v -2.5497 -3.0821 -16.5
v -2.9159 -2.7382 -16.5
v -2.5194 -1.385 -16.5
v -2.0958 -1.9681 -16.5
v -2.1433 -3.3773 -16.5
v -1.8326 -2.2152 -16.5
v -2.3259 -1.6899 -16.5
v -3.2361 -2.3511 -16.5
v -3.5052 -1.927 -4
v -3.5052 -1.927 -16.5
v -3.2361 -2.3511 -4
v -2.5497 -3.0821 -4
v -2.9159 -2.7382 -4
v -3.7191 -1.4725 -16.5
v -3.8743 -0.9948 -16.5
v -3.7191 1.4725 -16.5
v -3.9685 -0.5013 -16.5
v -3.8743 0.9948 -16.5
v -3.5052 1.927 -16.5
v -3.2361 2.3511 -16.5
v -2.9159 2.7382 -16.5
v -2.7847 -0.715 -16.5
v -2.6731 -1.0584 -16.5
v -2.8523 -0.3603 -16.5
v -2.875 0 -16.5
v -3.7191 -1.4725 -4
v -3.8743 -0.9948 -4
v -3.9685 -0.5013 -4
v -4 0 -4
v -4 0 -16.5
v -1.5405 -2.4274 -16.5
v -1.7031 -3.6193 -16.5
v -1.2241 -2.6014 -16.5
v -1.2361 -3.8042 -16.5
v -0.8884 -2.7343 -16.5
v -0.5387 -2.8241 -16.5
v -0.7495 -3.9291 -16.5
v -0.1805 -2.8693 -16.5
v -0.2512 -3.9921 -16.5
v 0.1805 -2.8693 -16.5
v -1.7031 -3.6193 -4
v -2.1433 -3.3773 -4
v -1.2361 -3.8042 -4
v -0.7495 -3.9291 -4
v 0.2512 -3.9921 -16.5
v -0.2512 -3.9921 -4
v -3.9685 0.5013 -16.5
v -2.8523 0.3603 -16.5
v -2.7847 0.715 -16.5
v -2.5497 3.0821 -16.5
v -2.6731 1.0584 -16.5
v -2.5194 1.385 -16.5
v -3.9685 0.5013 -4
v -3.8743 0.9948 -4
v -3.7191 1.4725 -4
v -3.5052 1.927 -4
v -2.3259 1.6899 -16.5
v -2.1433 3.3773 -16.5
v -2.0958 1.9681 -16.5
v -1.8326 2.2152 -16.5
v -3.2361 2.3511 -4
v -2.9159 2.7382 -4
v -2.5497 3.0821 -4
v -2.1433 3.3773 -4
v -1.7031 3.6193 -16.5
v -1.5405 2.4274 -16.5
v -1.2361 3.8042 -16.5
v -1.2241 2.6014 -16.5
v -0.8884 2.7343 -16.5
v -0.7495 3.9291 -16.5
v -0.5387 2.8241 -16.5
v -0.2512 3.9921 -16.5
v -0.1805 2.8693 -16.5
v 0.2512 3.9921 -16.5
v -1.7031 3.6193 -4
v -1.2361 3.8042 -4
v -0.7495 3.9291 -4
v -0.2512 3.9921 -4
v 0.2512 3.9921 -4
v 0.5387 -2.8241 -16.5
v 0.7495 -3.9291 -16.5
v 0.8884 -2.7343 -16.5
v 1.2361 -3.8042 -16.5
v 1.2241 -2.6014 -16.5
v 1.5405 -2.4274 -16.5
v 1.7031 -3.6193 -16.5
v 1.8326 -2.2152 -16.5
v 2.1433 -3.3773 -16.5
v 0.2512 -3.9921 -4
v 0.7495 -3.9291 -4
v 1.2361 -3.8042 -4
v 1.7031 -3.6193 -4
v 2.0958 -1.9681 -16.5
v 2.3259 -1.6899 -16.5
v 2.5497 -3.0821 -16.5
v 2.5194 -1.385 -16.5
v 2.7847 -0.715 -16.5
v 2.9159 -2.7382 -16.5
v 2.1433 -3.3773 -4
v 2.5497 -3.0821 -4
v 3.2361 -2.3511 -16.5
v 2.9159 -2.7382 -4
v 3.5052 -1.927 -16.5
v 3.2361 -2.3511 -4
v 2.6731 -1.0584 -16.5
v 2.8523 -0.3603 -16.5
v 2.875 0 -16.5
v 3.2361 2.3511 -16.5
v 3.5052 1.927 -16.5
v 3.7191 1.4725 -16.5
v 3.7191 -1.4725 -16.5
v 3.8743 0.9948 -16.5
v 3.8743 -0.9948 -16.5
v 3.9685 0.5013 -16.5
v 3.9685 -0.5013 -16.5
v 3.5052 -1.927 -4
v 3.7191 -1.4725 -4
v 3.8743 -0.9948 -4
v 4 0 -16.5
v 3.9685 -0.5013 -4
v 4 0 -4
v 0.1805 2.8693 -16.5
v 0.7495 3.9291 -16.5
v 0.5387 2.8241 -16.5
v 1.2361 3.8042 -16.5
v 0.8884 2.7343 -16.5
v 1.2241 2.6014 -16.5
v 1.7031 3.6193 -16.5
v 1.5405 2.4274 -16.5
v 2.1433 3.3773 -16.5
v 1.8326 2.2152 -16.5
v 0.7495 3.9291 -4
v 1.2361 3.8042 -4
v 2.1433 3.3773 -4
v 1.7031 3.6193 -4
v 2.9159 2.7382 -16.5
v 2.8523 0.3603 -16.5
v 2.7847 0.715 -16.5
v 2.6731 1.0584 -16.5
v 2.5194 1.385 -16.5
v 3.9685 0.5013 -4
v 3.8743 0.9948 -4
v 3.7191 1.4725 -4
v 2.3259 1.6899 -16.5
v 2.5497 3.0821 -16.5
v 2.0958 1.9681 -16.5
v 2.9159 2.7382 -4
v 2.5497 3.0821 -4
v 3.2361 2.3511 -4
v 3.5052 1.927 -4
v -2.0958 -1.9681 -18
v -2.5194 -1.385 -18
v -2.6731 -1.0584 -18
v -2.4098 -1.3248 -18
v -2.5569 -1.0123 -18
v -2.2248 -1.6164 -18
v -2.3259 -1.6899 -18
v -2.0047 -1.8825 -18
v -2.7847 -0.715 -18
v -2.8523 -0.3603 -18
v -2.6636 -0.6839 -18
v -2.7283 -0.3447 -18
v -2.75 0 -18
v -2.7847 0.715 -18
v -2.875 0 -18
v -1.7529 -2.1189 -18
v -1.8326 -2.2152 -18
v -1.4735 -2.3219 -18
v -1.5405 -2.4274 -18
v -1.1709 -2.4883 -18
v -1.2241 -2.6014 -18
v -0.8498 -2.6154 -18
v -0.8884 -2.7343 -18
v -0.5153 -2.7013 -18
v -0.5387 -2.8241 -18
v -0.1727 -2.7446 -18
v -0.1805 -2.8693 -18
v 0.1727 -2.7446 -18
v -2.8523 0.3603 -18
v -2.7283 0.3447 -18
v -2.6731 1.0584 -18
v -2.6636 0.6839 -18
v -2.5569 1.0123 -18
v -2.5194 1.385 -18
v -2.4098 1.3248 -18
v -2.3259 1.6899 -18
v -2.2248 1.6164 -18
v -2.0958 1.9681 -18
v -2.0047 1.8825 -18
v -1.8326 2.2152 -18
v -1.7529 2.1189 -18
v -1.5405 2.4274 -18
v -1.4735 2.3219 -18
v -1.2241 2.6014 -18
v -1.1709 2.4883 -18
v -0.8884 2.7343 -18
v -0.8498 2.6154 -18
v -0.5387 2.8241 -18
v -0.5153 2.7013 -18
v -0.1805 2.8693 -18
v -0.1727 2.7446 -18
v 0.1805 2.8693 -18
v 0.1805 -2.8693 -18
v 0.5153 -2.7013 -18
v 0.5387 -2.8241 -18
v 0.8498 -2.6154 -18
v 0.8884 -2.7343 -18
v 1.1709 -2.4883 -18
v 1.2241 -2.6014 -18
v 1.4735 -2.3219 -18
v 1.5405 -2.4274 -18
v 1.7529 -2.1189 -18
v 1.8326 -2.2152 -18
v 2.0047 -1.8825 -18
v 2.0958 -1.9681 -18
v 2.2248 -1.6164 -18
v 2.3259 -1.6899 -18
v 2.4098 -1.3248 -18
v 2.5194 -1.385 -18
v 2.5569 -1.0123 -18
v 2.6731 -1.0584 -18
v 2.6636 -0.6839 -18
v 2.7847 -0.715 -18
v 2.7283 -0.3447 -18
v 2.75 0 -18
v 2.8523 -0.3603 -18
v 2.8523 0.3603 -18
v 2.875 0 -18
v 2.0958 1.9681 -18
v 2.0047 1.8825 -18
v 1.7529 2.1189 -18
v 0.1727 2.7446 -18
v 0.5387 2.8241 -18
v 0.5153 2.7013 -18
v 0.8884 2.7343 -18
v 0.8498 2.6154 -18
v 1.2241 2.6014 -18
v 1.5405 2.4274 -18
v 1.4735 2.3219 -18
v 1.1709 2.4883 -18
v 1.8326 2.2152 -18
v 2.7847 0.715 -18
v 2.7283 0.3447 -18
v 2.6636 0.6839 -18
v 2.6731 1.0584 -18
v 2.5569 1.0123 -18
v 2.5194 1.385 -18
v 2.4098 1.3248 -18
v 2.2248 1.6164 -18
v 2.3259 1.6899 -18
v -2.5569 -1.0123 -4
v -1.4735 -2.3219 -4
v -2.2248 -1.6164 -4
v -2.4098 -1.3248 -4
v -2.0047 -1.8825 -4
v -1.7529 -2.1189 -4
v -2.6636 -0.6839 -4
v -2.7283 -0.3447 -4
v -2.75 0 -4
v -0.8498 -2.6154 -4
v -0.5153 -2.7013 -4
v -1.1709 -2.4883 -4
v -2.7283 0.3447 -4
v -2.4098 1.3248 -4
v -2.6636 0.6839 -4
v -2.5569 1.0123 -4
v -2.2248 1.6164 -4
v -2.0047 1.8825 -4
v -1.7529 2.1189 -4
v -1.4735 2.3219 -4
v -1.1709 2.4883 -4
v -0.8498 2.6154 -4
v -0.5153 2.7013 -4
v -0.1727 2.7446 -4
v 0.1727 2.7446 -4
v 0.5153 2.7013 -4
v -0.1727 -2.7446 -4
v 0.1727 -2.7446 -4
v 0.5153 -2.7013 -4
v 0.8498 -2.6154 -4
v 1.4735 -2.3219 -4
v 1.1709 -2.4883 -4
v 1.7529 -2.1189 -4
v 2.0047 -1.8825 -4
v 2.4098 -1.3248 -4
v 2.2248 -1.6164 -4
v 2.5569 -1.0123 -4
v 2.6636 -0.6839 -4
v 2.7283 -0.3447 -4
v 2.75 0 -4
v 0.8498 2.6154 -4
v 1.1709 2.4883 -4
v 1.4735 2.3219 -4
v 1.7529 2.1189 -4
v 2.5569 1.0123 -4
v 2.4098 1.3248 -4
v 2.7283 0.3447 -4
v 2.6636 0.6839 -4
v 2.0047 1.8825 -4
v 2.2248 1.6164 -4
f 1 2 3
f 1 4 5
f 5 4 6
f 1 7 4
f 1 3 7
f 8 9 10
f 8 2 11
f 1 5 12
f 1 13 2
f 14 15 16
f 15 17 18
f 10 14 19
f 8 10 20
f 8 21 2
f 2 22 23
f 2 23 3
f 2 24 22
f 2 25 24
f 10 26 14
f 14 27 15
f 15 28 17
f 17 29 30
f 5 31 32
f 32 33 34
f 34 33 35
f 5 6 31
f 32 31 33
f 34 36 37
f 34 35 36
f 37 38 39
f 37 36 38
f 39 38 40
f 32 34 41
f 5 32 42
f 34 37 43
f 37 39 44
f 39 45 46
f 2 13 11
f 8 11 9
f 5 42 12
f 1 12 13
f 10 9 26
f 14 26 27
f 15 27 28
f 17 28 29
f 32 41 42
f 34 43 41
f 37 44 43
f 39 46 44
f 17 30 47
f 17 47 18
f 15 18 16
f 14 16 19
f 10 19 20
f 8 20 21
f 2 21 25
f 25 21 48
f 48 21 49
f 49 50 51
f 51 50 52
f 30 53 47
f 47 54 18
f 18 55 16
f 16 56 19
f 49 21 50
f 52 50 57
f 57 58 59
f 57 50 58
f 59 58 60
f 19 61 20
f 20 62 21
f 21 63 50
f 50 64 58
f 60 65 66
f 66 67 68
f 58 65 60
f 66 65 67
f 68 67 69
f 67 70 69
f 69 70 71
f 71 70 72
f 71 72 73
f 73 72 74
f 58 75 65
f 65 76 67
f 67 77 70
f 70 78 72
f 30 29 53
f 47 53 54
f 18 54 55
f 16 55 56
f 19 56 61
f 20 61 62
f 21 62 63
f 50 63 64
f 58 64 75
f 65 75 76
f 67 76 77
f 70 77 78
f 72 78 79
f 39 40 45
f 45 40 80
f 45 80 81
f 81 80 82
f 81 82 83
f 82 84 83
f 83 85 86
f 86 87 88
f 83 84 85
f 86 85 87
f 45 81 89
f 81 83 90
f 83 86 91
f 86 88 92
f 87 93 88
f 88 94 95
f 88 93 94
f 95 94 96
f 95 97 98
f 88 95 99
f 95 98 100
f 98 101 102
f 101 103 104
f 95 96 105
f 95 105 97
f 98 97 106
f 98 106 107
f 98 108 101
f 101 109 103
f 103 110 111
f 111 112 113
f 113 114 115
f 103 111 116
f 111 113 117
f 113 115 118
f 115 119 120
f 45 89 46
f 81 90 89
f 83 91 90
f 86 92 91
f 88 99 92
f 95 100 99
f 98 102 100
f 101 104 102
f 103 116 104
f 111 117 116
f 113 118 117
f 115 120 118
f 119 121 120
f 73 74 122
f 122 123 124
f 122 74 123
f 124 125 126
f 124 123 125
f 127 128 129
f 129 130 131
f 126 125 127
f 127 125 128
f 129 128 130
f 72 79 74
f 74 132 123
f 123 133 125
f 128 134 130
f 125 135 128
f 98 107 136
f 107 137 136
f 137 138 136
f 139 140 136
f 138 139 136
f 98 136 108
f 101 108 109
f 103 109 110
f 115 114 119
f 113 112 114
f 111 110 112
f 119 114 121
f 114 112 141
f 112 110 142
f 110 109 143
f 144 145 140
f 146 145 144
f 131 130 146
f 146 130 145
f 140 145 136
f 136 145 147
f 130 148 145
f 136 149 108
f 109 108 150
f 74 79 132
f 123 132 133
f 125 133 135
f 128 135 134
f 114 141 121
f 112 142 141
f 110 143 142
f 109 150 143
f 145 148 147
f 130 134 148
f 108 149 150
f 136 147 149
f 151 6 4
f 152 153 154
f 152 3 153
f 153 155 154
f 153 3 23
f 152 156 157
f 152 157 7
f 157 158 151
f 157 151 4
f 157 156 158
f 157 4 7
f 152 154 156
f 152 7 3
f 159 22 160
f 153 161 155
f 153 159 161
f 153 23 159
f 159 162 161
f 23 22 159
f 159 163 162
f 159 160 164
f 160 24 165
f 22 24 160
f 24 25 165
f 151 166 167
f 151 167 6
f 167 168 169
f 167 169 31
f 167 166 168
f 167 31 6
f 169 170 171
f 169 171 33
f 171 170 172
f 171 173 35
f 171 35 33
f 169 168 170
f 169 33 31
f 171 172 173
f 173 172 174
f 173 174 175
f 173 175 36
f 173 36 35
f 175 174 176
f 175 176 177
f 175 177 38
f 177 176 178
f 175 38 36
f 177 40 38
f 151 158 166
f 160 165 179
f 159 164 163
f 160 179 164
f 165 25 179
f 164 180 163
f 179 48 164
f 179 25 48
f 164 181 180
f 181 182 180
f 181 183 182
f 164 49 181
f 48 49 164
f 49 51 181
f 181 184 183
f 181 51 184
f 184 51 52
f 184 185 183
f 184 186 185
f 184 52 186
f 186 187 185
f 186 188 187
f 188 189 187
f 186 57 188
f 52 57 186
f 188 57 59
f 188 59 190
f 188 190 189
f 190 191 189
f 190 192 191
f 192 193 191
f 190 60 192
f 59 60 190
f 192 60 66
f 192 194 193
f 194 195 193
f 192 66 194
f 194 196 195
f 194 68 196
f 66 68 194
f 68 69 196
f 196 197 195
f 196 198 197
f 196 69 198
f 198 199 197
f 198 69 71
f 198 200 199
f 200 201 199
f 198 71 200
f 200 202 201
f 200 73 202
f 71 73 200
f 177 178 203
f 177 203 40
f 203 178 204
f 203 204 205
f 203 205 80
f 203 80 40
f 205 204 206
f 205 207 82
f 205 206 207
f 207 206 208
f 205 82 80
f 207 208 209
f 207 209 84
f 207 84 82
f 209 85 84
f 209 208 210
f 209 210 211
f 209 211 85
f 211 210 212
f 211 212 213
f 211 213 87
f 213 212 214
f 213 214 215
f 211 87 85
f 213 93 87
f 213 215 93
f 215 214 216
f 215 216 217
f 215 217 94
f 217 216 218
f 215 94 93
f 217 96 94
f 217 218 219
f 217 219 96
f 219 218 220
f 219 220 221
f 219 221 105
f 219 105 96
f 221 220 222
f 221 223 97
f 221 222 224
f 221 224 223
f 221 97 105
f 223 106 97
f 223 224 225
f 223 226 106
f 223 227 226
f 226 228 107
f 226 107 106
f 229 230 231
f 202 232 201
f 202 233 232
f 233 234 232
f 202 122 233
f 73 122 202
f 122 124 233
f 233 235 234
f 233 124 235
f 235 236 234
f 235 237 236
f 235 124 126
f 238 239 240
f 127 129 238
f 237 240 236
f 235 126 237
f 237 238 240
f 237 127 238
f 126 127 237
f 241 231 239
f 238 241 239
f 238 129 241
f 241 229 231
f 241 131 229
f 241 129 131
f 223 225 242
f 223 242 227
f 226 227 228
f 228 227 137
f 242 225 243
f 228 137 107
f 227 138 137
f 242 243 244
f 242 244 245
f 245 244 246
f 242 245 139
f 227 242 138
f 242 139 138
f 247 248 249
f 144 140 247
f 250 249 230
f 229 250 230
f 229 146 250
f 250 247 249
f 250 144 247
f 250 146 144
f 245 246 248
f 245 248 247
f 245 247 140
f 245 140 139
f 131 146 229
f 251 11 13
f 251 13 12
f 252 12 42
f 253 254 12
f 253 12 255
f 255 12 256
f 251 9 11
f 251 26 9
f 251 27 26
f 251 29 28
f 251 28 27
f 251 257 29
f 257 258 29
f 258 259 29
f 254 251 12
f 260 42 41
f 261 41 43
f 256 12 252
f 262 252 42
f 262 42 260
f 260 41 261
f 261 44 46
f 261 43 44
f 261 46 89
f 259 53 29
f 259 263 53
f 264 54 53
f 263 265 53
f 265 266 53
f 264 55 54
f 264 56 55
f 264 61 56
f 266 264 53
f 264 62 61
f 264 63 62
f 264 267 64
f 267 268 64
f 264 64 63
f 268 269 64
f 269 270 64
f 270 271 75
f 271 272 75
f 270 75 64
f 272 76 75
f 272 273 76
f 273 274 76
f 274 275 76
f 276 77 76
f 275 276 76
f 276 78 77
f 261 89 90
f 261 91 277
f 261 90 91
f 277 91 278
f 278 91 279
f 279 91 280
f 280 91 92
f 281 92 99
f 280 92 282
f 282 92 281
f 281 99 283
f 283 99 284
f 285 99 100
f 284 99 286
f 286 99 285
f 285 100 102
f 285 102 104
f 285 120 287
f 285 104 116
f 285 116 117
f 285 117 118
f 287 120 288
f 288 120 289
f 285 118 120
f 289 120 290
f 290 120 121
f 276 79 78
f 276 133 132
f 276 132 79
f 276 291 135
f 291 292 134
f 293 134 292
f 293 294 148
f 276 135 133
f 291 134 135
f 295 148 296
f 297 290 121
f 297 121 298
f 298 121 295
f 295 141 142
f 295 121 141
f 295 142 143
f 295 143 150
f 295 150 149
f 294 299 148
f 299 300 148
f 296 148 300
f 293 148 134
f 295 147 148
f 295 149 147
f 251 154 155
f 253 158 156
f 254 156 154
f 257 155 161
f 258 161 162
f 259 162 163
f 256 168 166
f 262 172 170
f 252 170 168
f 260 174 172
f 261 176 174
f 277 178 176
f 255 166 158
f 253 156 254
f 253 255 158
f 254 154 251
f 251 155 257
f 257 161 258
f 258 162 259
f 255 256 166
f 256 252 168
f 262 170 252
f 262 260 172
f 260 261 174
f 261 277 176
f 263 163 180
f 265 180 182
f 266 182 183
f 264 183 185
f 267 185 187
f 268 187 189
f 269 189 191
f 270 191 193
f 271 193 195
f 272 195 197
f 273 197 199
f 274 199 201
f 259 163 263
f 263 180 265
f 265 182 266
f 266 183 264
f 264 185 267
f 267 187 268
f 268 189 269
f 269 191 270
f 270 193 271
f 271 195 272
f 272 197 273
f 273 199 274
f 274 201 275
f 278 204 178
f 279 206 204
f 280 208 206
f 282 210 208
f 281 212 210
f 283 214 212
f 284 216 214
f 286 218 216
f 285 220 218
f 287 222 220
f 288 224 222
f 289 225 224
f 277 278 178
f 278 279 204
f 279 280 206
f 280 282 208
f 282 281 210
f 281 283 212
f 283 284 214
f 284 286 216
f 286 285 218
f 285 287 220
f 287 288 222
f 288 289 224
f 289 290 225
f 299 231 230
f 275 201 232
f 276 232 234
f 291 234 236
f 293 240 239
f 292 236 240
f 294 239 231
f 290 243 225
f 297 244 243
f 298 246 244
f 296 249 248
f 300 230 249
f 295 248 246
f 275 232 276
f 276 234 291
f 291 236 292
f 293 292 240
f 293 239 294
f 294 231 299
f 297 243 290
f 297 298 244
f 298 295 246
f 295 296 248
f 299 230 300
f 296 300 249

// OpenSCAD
$fn = 50;

difference() {
	union() {
		translate(v = [0, 0, -16.5]) {
			cylinder(h = 19.5, r = 4.0);
		}
		#translate(v = [0, 0, -18.0]) {
			cylinder(h = 18, r = 2.875);
		}
	}
	union() {
		translate(v = [0, 0, 0]) {
			rotate(a = [0, 0, 0]) {
				difference() {
					union() {
						translate(v = [0, 0, -4]) {
							linear_extrude(height = 4) {
								polygon(points = [[4.8468, 0.0], [2.4234000000000004, 4.197451927062417], [-2.423399999999999, 4.197451927062417], [-4.8468, 5.935618106107392e-16], [-2.423400000000002, -4.197451927062416], [2.423399999999997, -4.197451927062419]]);
							}
						}
					}
					union();
				}
			}
		}
		#cylinder(h = 3, r = 6.25);
		#translate(v = [0, 0, -100.0]) {
			cylinder(h = 200, r = 2.75);
		}
	}
}
